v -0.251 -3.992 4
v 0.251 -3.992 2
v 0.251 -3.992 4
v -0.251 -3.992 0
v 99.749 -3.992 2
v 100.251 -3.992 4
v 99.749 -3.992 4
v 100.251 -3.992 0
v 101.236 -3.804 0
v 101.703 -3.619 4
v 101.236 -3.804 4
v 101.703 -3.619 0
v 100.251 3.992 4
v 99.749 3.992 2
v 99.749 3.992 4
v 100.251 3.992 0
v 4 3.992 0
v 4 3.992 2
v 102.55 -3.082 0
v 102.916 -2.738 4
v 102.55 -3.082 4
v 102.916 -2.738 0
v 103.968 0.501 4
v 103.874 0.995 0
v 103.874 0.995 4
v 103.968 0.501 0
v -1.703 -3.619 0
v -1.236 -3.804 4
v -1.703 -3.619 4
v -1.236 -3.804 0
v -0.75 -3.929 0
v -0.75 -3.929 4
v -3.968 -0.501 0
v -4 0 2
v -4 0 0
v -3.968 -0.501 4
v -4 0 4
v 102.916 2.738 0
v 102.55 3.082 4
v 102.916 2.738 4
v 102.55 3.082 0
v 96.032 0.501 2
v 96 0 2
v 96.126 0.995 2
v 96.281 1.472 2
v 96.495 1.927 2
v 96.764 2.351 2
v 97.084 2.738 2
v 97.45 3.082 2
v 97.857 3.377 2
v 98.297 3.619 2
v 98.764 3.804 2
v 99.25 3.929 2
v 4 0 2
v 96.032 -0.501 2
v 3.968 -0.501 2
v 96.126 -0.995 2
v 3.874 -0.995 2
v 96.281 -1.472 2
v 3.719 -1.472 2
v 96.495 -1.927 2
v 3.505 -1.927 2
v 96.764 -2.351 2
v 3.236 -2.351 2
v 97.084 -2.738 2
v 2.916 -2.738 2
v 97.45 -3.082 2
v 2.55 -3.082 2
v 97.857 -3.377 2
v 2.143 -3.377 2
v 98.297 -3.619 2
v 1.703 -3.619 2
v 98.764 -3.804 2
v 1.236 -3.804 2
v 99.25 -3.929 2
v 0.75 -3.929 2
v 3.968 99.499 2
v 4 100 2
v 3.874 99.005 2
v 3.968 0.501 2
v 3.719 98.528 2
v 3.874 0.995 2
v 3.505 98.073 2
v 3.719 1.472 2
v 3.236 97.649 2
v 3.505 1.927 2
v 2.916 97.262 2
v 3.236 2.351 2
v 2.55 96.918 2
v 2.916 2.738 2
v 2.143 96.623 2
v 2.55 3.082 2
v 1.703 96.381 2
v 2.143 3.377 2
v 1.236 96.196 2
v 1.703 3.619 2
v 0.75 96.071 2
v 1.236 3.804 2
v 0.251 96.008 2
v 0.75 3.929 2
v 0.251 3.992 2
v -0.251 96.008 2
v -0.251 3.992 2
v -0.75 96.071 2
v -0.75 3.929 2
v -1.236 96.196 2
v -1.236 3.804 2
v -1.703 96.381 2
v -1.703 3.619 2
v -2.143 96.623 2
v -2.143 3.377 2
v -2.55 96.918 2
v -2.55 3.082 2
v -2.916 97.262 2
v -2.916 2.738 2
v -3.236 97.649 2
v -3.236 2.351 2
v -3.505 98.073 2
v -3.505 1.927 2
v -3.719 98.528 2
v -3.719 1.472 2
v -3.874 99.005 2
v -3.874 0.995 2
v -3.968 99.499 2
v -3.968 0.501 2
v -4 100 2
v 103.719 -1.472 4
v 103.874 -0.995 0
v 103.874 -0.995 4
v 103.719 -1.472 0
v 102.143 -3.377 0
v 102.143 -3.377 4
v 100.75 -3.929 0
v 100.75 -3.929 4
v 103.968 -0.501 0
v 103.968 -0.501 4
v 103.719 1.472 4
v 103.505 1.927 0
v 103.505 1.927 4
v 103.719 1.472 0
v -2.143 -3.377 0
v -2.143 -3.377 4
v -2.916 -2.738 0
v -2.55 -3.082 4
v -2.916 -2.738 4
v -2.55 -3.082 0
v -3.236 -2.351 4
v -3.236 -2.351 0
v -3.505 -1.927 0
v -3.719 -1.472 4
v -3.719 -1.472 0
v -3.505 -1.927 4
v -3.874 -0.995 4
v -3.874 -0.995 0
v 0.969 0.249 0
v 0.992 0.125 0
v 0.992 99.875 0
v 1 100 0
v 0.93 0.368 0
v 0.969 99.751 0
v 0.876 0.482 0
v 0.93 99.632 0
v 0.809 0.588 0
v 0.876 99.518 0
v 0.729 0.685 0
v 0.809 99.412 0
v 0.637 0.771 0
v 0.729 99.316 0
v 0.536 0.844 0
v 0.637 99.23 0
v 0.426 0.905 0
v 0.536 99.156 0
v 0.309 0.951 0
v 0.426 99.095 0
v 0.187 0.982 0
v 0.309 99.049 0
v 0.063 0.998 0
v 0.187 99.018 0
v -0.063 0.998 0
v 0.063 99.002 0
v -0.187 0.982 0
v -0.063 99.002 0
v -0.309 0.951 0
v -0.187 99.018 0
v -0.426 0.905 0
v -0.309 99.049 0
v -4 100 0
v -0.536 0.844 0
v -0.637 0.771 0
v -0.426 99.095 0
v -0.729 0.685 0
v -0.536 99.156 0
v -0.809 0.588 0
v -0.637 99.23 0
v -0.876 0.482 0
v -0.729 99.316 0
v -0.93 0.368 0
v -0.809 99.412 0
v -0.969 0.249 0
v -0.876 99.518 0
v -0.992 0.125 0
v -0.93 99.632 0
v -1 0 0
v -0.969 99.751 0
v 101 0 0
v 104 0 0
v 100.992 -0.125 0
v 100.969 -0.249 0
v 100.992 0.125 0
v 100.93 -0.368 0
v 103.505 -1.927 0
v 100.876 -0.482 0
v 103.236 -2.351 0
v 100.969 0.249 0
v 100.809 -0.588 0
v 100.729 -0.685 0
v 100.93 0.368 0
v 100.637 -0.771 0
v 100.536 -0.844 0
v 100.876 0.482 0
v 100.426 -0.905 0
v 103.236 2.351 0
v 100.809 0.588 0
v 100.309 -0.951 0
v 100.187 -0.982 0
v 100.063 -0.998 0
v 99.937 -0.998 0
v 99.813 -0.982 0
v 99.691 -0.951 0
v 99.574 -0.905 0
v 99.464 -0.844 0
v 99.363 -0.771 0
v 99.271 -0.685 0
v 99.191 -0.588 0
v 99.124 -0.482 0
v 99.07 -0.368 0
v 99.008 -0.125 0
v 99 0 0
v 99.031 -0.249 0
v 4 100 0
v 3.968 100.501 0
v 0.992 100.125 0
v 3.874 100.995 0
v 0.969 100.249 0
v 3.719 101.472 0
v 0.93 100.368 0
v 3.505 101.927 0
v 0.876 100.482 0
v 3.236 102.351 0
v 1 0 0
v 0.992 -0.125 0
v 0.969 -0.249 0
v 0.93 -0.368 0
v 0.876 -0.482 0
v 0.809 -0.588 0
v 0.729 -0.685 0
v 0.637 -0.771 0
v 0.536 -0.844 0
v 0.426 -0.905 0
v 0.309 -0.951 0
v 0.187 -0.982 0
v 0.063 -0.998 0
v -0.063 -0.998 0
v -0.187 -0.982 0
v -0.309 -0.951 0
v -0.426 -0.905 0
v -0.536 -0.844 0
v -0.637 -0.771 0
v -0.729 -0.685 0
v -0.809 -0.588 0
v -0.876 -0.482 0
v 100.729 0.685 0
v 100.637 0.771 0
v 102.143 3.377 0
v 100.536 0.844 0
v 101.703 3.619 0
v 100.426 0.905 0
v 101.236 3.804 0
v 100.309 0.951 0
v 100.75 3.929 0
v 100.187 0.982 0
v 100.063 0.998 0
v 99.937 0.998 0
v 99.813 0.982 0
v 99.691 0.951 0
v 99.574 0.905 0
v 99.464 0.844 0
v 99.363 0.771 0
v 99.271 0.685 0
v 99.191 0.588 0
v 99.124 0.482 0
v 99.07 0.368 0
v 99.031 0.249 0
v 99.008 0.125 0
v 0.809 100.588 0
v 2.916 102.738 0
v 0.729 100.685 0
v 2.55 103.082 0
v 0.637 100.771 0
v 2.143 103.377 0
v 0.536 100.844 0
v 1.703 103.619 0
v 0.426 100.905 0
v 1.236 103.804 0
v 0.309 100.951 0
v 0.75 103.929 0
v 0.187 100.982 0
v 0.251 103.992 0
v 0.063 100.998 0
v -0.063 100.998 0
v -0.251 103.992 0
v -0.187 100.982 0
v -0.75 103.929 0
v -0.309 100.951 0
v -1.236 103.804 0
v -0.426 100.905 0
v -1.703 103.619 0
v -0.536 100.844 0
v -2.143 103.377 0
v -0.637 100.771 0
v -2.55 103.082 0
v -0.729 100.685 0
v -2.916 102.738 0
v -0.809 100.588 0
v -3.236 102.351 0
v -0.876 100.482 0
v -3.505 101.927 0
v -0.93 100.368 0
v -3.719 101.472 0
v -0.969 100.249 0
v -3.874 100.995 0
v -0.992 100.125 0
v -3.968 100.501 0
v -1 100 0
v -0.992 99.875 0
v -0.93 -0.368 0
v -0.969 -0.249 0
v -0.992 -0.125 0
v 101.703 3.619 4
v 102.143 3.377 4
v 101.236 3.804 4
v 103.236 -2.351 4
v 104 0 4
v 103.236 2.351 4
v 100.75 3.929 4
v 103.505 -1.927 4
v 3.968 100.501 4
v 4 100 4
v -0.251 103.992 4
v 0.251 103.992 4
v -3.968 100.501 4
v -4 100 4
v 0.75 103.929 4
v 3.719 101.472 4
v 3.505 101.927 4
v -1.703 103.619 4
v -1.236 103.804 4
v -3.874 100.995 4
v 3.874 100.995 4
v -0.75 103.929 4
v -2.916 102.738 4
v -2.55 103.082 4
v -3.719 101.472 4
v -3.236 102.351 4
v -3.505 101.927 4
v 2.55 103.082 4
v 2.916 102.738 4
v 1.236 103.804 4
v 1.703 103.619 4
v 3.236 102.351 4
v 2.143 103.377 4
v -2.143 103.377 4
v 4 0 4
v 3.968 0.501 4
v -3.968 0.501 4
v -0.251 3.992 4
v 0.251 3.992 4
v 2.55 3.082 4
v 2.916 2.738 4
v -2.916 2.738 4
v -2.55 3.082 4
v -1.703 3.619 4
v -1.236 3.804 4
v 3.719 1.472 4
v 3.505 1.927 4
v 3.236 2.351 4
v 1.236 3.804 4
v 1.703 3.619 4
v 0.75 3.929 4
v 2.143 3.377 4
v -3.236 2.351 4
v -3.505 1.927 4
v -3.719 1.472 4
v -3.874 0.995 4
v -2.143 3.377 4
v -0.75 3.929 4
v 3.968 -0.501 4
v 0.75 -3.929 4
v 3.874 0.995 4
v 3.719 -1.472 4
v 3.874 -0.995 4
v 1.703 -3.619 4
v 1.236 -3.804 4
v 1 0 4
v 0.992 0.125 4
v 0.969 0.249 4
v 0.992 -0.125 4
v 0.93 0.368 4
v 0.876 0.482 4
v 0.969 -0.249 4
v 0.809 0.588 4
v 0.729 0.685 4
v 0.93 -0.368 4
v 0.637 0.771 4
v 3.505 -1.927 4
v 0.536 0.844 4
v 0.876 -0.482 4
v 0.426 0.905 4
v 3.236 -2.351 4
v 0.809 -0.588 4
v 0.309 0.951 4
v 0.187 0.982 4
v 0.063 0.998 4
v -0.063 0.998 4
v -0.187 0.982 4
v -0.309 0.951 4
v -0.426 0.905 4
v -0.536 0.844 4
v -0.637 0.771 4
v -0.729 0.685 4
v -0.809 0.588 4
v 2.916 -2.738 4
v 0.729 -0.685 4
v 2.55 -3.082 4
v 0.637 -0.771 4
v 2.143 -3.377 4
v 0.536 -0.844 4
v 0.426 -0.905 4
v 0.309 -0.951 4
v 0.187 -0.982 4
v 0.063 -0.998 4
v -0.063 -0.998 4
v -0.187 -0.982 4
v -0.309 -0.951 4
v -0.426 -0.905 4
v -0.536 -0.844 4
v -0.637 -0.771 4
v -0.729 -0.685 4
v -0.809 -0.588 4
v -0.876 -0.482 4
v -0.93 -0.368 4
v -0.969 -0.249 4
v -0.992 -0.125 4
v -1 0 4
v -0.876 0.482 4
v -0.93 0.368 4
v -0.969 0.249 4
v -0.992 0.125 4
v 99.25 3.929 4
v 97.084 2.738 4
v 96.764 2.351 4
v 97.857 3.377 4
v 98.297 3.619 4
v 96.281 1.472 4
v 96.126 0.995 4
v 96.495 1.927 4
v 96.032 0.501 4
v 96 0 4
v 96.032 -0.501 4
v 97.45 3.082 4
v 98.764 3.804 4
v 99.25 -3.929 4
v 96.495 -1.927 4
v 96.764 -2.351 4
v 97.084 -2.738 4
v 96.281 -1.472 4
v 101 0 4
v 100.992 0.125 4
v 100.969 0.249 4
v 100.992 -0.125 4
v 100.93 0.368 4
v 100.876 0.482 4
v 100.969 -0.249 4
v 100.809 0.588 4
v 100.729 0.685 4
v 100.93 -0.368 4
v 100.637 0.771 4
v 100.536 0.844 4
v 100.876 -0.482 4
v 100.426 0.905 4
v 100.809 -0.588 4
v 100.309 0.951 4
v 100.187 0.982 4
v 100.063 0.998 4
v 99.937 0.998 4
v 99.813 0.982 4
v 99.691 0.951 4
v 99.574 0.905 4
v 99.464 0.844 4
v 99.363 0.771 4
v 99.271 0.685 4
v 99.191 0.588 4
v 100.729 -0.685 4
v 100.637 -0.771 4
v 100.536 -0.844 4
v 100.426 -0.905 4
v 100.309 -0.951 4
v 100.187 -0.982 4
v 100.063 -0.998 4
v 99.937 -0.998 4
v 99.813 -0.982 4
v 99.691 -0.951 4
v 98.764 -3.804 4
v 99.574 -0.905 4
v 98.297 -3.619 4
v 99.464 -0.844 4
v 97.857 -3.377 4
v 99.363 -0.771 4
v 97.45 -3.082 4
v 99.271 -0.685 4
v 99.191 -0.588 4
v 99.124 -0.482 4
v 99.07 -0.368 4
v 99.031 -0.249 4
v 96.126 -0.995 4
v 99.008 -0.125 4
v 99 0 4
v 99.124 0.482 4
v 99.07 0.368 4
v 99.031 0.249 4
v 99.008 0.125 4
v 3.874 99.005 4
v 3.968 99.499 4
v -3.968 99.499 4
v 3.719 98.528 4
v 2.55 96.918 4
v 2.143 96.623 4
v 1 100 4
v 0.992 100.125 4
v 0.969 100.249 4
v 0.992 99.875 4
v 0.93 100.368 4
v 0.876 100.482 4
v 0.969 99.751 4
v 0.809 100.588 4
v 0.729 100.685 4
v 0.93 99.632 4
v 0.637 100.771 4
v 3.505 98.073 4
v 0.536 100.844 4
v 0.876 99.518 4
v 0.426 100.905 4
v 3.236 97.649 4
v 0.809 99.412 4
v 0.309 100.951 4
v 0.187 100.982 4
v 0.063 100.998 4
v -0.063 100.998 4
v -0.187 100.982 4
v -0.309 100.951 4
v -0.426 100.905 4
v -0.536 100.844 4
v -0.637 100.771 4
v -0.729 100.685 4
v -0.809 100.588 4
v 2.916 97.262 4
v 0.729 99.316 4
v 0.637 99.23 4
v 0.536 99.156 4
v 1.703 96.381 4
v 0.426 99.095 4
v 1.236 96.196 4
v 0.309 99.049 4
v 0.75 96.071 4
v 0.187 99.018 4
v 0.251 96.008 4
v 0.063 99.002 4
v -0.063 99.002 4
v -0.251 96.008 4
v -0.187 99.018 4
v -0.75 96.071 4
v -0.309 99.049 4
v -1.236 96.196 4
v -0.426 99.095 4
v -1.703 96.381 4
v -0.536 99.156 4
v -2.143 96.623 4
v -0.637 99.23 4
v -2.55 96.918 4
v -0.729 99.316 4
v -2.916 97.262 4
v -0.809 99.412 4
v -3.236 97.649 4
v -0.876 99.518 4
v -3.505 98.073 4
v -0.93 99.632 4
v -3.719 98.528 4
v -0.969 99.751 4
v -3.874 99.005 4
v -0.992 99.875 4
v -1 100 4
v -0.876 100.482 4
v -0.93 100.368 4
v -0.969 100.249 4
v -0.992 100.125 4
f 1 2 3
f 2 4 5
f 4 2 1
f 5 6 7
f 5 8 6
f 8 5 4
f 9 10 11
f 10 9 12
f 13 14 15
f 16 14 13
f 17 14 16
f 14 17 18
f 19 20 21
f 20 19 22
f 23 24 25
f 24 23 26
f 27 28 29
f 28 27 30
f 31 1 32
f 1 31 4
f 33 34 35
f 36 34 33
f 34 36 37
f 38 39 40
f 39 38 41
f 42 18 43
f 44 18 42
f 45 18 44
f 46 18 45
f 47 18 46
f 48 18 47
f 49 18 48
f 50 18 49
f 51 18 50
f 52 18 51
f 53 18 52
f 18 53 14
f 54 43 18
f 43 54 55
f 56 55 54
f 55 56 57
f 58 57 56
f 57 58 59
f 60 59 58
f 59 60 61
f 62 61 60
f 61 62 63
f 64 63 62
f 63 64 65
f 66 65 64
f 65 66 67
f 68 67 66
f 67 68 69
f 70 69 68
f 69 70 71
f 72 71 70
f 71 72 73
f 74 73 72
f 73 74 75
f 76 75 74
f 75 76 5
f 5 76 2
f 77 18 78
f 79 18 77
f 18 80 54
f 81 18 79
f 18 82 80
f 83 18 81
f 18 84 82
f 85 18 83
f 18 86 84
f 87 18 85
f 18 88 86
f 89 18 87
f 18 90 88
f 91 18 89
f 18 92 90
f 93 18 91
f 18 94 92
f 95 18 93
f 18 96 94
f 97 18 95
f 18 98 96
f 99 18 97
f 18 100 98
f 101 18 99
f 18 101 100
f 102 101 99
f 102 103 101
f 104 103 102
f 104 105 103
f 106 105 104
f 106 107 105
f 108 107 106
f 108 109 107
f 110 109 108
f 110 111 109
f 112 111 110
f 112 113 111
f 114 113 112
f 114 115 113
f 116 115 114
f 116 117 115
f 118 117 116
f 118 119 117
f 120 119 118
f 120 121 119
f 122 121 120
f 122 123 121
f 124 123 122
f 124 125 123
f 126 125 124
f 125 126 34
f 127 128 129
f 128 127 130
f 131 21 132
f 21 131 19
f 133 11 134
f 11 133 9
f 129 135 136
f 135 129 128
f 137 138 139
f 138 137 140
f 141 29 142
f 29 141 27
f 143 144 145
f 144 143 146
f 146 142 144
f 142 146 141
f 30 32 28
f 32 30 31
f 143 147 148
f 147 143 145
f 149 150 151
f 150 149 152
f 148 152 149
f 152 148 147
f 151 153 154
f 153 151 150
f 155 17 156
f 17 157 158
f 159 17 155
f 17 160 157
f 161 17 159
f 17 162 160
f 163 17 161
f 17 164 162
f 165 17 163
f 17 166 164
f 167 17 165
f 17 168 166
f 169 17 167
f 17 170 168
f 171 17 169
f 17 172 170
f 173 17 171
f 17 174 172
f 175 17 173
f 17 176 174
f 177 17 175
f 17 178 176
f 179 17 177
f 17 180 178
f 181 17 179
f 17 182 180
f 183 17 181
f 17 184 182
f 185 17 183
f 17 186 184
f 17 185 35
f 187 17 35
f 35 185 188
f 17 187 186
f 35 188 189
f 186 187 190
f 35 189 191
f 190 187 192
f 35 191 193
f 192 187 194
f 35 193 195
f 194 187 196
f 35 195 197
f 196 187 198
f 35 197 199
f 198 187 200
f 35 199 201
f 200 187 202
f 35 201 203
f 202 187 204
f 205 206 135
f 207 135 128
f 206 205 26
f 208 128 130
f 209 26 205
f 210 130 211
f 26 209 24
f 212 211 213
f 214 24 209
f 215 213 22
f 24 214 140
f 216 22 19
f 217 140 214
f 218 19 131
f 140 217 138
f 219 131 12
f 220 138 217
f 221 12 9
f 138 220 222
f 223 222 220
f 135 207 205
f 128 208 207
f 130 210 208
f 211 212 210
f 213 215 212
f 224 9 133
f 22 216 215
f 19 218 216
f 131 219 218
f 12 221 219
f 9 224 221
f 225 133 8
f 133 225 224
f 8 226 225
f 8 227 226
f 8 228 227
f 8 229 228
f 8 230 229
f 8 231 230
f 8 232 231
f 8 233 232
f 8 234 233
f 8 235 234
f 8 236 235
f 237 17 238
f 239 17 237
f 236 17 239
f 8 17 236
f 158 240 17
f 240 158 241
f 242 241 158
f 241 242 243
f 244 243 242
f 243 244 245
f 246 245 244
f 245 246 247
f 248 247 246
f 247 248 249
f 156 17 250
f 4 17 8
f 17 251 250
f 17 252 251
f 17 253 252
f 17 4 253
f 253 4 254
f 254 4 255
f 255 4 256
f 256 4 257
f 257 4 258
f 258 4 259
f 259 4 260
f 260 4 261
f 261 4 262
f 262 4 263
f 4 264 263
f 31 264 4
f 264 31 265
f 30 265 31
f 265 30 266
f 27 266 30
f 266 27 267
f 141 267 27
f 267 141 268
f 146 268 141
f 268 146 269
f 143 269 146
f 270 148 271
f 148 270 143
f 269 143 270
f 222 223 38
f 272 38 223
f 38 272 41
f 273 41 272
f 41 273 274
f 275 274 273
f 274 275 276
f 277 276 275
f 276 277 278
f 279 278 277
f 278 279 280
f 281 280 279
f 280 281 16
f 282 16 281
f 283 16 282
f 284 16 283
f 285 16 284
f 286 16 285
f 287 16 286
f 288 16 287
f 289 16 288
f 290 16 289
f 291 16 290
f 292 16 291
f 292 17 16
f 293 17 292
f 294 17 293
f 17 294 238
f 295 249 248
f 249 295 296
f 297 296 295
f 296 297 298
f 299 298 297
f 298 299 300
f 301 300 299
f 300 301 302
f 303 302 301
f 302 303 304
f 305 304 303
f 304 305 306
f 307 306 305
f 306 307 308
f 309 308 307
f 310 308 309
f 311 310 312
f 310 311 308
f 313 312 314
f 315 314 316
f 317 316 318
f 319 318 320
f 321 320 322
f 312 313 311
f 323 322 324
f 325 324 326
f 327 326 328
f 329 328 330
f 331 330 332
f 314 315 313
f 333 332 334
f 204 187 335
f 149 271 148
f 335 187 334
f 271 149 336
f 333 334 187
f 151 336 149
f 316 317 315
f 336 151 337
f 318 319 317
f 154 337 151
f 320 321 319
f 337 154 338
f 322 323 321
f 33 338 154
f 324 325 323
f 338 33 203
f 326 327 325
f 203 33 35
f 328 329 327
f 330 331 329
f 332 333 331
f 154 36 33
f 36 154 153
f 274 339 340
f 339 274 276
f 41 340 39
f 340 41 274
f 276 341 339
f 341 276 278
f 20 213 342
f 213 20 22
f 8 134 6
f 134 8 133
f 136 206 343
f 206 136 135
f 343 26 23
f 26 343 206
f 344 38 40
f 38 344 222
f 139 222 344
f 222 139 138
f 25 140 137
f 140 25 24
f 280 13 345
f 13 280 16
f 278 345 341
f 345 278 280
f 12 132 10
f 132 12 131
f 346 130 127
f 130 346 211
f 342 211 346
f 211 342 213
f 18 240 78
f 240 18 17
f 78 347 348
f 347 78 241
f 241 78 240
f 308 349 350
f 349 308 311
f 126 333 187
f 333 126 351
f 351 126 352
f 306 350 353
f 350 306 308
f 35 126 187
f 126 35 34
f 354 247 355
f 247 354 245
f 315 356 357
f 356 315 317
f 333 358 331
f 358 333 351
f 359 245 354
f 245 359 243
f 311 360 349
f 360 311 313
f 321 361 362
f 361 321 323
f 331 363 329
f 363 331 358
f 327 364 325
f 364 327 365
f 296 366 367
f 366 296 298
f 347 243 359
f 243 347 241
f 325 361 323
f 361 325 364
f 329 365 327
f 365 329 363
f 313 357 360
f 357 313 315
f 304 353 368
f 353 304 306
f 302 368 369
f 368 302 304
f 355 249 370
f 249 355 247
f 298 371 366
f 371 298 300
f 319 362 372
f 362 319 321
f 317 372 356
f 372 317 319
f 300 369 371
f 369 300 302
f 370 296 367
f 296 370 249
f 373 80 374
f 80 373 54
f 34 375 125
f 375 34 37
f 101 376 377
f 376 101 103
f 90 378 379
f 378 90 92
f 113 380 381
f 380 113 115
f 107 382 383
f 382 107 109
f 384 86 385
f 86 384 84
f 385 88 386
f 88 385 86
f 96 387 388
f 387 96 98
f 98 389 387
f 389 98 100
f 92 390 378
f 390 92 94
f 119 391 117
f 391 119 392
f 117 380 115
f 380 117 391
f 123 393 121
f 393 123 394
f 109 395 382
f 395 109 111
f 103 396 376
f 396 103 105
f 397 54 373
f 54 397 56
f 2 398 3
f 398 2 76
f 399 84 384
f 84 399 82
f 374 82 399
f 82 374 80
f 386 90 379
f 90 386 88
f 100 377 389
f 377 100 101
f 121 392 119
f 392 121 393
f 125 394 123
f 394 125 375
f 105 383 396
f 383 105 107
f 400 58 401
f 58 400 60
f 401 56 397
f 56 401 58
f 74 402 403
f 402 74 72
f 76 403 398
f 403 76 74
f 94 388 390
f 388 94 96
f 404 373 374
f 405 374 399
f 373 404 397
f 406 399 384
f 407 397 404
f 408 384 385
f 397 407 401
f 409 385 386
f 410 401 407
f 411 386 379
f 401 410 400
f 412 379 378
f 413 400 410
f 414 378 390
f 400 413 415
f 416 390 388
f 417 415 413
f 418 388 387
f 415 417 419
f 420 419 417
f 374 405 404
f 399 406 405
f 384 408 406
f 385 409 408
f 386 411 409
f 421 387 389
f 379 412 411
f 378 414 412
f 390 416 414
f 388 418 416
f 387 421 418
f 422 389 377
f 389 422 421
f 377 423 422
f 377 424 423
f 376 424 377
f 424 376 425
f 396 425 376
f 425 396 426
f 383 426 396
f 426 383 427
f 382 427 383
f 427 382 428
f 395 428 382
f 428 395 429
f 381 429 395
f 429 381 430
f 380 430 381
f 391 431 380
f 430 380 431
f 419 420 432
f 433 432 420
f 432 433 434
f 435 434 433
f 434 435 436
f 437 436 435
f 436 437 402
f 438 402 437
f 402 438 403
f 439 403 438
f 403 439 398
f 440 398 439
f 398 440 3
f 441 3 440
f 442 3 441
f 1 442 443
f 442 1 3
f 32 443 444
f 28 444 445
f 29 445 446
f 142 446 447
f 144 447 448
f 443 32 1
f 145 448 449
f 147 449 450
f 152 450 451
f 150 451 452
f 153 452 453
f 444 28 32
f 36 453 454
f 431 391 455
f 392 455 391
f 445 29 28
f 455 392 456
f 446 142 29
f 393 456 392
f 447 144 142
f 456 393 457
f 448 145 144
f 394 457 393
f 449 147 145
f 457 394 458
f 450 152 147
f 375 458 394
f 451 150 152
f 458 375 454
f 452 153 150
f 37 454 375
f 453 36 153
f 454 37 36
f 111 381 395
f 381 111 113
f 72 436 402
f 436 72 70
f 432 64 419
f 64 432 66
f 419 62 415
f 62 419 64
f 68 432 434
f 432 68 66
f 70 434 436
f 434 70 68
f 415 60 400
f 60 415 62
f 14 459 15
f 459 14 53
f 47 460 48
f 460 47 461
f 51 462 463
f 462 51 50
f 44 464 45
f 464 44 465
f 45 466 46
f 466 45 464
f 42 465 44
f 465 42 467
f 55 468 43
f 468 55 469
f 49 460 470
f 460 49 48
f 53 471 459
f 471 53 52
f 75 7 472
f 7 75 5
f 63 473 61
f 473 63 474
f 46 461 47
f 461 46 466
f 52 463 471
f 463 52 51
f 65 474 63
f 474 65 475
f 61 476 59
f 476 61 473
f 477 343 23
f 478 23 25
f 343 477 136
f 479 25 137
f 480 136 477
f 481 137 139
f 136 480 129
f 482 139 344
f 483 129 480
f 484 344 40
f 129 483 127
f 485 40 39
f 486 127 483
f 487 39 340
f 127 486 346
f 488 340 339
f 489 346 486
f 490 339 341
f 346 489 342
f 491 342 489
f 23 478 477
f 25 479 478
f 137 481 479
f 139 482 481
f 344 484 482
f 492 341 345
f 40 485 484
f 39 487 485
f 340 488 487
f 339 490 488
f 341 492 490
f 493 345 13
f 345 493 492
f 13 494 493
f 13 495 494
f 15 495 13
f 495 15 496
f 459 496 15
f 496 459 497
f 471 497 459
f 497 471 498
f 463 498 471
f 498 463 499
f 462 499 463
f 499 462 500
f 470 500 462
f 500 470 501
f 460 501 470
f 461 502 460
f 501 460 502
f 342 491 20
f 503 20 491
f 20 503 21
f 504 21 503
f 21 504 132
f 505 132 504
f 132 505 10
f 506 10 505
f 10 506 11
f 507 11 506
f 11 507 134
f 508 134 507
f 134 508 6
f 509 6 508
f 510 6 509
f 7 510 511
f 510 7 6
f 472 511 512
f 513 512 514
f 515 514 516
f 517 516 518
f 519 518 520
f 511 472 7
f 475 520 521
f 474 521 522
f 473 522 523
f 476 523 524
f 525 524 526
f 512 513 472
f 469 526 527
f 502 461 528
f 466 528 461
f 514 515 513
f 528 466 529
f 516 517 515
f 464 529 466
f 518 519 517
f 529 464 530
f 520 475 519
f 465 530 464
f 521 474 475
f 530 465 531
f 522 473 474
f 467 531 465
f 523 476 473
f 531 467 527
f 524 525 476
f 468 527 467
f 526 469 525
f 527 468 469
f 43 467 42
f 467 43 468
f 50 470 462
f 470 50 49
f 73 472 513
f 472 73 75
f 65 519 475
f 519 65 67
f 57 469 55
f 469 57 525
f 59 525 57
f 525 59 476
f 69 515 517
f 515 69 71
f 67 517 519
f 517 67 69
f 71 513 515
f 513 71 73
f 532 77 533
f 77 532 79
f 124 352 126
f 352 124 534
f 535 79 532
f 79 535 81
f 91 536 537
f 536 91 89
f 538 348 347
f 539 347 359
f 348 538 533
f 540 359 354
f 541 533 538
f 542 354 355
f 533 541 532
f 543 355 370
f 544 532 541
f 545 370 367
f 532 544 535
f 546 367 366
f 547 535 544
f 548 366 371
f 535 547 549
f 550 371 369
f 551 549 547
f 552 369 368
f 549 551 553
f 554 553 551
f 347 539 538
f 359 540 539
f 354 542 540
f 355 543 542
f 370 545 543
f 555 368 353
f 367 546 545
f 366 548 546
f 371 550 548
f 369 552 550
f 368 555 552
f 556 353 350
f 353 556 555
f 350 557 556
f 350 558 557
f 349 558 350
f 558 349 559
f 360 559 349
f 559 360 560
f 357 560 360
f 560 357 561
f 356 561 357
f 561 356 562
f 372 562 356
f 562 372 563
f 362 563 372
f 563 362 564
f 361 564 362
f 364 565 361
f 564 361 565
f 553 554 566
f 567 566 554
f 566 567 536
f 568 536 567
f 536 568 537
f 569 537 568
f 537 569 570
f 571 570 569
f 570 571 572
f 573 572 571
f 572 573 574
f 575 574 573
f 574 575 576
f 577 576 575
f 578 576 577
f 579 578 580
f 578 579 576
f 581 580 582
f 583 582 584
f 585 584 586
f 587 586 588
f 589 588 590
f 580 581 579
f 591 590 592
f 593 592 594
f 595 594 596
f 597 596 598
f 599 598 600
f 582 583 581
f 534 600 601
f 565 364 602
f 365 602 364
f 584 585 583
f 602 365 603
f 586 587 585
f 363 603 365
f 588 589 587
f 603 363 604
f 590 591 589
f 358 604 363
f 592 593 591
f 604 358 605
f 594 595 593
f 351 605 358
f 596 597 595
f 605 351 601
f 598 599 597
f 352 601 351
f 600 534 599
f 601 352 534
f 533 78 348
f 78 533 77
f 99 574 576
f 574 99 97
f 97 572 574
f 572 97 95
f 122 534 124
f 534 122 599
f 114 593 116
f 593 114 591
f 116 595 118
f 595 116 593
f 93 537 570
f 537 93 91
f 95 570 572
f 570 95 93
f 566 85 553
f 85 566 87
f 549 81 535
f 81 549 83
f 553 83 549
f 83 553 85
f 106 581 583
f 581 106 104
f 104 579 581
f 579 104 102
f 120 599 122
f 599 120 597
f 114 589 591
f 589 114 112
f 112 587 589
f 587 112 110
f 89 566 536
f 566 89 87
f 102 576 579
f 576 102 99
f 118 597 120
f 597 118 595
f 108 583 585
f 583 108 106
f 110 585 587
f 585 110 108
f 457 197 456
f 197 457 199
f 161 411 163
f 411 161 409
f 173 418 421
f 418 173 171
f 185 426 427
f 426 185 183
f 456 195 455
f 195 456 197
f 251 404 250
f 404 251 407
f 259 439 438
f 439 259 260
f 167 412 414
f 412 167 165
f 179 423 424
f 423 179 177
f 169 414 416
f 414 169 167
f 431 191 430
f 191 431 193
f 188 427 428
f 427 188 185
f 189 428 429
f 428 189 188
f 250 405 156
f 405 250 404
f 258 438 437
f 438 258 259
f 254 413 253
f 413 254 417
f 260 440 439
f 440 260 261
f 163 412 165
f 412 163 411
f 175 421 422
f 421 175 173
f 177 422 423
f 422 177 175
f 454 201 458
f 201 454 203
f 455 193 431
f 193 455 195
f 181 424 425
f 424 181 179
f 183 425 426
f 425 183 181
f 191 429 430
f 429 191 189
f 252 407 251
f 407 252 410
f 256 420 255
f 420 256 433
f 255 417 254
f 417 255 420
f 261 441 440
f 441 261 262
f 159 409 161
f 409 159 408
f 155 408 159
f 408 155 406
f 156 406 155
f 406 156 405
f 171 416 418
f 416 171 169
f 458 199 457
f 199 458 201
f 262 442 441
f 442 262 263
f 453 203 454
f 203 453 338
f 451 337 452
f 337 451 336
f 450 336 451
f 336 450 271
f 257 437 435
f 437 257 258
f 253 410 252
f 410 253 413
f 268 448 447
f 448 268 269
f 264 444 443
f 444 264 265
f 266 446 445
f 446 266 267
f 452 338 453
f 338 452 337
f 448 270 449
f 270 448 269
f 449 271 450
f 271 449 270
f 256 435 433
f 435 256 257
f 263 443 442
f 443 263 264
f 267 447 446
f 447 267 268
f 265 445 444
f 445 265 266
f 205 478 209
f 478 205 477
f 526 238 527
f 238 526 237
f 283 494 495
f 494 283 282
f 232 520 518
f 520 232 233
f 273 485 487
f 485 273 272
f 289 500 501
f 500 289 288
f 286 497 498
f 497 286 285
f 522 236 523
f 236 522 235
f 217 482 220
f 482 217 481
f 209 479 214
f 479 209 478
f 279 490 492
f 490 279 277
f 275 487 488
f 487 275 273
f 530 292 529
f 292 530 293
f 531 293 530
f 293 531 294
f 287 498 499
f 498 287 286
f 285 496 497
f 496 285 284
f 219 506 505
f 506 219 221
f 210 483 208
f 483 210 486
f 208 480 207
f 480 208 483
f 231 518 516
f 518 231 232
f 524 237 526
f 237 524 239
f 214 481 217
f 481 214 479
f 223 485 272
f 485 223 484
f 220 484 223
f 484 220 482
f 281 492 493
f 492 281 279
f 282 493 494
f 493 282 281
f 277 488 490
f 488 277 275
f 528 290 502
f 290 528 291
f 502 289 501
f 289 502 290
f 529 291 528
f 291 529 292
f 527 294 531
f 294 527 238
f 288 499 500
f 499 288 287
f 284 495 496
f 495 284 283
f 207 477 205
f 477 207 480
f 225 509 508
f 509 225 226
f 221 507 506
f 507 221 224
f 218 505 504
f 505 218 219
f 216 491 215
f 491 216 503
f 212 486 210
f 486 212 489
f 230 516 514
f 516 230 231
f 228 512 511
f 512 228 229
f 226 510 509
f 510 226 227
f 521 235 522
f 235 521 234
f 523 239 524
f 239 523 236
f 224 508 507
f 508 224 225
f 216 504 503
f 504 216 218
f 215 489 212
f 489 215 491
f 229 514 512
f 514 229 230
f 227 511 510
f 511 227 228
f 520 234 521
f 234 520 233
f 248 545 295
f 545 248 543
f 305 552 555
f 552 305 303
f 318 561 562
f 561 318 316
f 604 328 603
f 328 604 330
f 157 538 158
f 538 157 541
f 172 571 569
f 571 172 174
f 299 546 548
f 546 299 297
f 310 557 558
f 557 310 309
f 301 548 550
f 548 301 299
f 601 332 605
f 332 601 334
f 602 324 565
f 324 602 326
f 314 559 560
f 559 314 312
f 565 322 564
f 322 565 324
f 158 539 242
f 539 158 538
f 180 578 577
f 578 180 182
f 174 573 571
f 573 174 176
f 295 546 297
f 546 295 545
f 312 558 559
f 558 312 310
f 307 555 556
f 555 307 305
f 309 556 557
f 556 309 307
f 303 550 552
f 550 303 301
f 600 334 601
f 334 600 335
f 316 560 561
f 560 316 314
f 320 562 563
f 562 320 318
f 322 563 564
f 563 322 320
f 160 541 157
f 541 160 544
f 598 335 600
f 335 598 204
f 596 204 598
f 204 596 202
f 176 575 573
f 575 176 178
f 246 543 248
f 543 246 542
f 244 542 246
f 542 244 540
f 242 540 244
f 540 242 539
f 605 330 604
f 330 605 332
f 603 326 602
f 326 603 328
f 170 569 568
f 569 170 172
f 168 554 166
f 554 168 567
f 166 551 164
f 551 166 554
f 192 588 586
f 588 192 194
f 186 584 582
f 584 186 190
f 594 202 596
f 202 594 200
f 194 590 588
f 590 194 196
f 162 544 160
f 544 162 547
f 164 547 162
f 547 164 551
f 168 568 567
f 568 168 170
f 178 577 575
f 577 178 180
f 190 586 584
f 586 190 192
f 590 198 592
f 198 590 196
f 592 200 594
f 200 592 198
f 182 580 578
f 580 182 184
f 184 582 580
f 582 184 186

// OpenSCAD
$fn=50;
difference()
{
    union()
    {
        hull() {
            cylinder(r=4, h = 2);
            translate([100,0,0]) cylinder(r=4, h = 2);
        }
        hull() {
            cylinder(r=4, h = 2);
            translate([0,100,0]) cylinder(r=4, h = 2);
        }
        cylinder(r=4, h = 4);
        translate([100,0,0]) cylinder(r=4, h = 4);
        translate([0,100,0]) cylinder(r=4, h = 4);        
    }
    cylinder(r=1, h = 4);
    translate([100,0,0]) cylinder(r=1, h = 4);
    translate([0,100,0]) cylinder(r=1, h = 4);        
}
